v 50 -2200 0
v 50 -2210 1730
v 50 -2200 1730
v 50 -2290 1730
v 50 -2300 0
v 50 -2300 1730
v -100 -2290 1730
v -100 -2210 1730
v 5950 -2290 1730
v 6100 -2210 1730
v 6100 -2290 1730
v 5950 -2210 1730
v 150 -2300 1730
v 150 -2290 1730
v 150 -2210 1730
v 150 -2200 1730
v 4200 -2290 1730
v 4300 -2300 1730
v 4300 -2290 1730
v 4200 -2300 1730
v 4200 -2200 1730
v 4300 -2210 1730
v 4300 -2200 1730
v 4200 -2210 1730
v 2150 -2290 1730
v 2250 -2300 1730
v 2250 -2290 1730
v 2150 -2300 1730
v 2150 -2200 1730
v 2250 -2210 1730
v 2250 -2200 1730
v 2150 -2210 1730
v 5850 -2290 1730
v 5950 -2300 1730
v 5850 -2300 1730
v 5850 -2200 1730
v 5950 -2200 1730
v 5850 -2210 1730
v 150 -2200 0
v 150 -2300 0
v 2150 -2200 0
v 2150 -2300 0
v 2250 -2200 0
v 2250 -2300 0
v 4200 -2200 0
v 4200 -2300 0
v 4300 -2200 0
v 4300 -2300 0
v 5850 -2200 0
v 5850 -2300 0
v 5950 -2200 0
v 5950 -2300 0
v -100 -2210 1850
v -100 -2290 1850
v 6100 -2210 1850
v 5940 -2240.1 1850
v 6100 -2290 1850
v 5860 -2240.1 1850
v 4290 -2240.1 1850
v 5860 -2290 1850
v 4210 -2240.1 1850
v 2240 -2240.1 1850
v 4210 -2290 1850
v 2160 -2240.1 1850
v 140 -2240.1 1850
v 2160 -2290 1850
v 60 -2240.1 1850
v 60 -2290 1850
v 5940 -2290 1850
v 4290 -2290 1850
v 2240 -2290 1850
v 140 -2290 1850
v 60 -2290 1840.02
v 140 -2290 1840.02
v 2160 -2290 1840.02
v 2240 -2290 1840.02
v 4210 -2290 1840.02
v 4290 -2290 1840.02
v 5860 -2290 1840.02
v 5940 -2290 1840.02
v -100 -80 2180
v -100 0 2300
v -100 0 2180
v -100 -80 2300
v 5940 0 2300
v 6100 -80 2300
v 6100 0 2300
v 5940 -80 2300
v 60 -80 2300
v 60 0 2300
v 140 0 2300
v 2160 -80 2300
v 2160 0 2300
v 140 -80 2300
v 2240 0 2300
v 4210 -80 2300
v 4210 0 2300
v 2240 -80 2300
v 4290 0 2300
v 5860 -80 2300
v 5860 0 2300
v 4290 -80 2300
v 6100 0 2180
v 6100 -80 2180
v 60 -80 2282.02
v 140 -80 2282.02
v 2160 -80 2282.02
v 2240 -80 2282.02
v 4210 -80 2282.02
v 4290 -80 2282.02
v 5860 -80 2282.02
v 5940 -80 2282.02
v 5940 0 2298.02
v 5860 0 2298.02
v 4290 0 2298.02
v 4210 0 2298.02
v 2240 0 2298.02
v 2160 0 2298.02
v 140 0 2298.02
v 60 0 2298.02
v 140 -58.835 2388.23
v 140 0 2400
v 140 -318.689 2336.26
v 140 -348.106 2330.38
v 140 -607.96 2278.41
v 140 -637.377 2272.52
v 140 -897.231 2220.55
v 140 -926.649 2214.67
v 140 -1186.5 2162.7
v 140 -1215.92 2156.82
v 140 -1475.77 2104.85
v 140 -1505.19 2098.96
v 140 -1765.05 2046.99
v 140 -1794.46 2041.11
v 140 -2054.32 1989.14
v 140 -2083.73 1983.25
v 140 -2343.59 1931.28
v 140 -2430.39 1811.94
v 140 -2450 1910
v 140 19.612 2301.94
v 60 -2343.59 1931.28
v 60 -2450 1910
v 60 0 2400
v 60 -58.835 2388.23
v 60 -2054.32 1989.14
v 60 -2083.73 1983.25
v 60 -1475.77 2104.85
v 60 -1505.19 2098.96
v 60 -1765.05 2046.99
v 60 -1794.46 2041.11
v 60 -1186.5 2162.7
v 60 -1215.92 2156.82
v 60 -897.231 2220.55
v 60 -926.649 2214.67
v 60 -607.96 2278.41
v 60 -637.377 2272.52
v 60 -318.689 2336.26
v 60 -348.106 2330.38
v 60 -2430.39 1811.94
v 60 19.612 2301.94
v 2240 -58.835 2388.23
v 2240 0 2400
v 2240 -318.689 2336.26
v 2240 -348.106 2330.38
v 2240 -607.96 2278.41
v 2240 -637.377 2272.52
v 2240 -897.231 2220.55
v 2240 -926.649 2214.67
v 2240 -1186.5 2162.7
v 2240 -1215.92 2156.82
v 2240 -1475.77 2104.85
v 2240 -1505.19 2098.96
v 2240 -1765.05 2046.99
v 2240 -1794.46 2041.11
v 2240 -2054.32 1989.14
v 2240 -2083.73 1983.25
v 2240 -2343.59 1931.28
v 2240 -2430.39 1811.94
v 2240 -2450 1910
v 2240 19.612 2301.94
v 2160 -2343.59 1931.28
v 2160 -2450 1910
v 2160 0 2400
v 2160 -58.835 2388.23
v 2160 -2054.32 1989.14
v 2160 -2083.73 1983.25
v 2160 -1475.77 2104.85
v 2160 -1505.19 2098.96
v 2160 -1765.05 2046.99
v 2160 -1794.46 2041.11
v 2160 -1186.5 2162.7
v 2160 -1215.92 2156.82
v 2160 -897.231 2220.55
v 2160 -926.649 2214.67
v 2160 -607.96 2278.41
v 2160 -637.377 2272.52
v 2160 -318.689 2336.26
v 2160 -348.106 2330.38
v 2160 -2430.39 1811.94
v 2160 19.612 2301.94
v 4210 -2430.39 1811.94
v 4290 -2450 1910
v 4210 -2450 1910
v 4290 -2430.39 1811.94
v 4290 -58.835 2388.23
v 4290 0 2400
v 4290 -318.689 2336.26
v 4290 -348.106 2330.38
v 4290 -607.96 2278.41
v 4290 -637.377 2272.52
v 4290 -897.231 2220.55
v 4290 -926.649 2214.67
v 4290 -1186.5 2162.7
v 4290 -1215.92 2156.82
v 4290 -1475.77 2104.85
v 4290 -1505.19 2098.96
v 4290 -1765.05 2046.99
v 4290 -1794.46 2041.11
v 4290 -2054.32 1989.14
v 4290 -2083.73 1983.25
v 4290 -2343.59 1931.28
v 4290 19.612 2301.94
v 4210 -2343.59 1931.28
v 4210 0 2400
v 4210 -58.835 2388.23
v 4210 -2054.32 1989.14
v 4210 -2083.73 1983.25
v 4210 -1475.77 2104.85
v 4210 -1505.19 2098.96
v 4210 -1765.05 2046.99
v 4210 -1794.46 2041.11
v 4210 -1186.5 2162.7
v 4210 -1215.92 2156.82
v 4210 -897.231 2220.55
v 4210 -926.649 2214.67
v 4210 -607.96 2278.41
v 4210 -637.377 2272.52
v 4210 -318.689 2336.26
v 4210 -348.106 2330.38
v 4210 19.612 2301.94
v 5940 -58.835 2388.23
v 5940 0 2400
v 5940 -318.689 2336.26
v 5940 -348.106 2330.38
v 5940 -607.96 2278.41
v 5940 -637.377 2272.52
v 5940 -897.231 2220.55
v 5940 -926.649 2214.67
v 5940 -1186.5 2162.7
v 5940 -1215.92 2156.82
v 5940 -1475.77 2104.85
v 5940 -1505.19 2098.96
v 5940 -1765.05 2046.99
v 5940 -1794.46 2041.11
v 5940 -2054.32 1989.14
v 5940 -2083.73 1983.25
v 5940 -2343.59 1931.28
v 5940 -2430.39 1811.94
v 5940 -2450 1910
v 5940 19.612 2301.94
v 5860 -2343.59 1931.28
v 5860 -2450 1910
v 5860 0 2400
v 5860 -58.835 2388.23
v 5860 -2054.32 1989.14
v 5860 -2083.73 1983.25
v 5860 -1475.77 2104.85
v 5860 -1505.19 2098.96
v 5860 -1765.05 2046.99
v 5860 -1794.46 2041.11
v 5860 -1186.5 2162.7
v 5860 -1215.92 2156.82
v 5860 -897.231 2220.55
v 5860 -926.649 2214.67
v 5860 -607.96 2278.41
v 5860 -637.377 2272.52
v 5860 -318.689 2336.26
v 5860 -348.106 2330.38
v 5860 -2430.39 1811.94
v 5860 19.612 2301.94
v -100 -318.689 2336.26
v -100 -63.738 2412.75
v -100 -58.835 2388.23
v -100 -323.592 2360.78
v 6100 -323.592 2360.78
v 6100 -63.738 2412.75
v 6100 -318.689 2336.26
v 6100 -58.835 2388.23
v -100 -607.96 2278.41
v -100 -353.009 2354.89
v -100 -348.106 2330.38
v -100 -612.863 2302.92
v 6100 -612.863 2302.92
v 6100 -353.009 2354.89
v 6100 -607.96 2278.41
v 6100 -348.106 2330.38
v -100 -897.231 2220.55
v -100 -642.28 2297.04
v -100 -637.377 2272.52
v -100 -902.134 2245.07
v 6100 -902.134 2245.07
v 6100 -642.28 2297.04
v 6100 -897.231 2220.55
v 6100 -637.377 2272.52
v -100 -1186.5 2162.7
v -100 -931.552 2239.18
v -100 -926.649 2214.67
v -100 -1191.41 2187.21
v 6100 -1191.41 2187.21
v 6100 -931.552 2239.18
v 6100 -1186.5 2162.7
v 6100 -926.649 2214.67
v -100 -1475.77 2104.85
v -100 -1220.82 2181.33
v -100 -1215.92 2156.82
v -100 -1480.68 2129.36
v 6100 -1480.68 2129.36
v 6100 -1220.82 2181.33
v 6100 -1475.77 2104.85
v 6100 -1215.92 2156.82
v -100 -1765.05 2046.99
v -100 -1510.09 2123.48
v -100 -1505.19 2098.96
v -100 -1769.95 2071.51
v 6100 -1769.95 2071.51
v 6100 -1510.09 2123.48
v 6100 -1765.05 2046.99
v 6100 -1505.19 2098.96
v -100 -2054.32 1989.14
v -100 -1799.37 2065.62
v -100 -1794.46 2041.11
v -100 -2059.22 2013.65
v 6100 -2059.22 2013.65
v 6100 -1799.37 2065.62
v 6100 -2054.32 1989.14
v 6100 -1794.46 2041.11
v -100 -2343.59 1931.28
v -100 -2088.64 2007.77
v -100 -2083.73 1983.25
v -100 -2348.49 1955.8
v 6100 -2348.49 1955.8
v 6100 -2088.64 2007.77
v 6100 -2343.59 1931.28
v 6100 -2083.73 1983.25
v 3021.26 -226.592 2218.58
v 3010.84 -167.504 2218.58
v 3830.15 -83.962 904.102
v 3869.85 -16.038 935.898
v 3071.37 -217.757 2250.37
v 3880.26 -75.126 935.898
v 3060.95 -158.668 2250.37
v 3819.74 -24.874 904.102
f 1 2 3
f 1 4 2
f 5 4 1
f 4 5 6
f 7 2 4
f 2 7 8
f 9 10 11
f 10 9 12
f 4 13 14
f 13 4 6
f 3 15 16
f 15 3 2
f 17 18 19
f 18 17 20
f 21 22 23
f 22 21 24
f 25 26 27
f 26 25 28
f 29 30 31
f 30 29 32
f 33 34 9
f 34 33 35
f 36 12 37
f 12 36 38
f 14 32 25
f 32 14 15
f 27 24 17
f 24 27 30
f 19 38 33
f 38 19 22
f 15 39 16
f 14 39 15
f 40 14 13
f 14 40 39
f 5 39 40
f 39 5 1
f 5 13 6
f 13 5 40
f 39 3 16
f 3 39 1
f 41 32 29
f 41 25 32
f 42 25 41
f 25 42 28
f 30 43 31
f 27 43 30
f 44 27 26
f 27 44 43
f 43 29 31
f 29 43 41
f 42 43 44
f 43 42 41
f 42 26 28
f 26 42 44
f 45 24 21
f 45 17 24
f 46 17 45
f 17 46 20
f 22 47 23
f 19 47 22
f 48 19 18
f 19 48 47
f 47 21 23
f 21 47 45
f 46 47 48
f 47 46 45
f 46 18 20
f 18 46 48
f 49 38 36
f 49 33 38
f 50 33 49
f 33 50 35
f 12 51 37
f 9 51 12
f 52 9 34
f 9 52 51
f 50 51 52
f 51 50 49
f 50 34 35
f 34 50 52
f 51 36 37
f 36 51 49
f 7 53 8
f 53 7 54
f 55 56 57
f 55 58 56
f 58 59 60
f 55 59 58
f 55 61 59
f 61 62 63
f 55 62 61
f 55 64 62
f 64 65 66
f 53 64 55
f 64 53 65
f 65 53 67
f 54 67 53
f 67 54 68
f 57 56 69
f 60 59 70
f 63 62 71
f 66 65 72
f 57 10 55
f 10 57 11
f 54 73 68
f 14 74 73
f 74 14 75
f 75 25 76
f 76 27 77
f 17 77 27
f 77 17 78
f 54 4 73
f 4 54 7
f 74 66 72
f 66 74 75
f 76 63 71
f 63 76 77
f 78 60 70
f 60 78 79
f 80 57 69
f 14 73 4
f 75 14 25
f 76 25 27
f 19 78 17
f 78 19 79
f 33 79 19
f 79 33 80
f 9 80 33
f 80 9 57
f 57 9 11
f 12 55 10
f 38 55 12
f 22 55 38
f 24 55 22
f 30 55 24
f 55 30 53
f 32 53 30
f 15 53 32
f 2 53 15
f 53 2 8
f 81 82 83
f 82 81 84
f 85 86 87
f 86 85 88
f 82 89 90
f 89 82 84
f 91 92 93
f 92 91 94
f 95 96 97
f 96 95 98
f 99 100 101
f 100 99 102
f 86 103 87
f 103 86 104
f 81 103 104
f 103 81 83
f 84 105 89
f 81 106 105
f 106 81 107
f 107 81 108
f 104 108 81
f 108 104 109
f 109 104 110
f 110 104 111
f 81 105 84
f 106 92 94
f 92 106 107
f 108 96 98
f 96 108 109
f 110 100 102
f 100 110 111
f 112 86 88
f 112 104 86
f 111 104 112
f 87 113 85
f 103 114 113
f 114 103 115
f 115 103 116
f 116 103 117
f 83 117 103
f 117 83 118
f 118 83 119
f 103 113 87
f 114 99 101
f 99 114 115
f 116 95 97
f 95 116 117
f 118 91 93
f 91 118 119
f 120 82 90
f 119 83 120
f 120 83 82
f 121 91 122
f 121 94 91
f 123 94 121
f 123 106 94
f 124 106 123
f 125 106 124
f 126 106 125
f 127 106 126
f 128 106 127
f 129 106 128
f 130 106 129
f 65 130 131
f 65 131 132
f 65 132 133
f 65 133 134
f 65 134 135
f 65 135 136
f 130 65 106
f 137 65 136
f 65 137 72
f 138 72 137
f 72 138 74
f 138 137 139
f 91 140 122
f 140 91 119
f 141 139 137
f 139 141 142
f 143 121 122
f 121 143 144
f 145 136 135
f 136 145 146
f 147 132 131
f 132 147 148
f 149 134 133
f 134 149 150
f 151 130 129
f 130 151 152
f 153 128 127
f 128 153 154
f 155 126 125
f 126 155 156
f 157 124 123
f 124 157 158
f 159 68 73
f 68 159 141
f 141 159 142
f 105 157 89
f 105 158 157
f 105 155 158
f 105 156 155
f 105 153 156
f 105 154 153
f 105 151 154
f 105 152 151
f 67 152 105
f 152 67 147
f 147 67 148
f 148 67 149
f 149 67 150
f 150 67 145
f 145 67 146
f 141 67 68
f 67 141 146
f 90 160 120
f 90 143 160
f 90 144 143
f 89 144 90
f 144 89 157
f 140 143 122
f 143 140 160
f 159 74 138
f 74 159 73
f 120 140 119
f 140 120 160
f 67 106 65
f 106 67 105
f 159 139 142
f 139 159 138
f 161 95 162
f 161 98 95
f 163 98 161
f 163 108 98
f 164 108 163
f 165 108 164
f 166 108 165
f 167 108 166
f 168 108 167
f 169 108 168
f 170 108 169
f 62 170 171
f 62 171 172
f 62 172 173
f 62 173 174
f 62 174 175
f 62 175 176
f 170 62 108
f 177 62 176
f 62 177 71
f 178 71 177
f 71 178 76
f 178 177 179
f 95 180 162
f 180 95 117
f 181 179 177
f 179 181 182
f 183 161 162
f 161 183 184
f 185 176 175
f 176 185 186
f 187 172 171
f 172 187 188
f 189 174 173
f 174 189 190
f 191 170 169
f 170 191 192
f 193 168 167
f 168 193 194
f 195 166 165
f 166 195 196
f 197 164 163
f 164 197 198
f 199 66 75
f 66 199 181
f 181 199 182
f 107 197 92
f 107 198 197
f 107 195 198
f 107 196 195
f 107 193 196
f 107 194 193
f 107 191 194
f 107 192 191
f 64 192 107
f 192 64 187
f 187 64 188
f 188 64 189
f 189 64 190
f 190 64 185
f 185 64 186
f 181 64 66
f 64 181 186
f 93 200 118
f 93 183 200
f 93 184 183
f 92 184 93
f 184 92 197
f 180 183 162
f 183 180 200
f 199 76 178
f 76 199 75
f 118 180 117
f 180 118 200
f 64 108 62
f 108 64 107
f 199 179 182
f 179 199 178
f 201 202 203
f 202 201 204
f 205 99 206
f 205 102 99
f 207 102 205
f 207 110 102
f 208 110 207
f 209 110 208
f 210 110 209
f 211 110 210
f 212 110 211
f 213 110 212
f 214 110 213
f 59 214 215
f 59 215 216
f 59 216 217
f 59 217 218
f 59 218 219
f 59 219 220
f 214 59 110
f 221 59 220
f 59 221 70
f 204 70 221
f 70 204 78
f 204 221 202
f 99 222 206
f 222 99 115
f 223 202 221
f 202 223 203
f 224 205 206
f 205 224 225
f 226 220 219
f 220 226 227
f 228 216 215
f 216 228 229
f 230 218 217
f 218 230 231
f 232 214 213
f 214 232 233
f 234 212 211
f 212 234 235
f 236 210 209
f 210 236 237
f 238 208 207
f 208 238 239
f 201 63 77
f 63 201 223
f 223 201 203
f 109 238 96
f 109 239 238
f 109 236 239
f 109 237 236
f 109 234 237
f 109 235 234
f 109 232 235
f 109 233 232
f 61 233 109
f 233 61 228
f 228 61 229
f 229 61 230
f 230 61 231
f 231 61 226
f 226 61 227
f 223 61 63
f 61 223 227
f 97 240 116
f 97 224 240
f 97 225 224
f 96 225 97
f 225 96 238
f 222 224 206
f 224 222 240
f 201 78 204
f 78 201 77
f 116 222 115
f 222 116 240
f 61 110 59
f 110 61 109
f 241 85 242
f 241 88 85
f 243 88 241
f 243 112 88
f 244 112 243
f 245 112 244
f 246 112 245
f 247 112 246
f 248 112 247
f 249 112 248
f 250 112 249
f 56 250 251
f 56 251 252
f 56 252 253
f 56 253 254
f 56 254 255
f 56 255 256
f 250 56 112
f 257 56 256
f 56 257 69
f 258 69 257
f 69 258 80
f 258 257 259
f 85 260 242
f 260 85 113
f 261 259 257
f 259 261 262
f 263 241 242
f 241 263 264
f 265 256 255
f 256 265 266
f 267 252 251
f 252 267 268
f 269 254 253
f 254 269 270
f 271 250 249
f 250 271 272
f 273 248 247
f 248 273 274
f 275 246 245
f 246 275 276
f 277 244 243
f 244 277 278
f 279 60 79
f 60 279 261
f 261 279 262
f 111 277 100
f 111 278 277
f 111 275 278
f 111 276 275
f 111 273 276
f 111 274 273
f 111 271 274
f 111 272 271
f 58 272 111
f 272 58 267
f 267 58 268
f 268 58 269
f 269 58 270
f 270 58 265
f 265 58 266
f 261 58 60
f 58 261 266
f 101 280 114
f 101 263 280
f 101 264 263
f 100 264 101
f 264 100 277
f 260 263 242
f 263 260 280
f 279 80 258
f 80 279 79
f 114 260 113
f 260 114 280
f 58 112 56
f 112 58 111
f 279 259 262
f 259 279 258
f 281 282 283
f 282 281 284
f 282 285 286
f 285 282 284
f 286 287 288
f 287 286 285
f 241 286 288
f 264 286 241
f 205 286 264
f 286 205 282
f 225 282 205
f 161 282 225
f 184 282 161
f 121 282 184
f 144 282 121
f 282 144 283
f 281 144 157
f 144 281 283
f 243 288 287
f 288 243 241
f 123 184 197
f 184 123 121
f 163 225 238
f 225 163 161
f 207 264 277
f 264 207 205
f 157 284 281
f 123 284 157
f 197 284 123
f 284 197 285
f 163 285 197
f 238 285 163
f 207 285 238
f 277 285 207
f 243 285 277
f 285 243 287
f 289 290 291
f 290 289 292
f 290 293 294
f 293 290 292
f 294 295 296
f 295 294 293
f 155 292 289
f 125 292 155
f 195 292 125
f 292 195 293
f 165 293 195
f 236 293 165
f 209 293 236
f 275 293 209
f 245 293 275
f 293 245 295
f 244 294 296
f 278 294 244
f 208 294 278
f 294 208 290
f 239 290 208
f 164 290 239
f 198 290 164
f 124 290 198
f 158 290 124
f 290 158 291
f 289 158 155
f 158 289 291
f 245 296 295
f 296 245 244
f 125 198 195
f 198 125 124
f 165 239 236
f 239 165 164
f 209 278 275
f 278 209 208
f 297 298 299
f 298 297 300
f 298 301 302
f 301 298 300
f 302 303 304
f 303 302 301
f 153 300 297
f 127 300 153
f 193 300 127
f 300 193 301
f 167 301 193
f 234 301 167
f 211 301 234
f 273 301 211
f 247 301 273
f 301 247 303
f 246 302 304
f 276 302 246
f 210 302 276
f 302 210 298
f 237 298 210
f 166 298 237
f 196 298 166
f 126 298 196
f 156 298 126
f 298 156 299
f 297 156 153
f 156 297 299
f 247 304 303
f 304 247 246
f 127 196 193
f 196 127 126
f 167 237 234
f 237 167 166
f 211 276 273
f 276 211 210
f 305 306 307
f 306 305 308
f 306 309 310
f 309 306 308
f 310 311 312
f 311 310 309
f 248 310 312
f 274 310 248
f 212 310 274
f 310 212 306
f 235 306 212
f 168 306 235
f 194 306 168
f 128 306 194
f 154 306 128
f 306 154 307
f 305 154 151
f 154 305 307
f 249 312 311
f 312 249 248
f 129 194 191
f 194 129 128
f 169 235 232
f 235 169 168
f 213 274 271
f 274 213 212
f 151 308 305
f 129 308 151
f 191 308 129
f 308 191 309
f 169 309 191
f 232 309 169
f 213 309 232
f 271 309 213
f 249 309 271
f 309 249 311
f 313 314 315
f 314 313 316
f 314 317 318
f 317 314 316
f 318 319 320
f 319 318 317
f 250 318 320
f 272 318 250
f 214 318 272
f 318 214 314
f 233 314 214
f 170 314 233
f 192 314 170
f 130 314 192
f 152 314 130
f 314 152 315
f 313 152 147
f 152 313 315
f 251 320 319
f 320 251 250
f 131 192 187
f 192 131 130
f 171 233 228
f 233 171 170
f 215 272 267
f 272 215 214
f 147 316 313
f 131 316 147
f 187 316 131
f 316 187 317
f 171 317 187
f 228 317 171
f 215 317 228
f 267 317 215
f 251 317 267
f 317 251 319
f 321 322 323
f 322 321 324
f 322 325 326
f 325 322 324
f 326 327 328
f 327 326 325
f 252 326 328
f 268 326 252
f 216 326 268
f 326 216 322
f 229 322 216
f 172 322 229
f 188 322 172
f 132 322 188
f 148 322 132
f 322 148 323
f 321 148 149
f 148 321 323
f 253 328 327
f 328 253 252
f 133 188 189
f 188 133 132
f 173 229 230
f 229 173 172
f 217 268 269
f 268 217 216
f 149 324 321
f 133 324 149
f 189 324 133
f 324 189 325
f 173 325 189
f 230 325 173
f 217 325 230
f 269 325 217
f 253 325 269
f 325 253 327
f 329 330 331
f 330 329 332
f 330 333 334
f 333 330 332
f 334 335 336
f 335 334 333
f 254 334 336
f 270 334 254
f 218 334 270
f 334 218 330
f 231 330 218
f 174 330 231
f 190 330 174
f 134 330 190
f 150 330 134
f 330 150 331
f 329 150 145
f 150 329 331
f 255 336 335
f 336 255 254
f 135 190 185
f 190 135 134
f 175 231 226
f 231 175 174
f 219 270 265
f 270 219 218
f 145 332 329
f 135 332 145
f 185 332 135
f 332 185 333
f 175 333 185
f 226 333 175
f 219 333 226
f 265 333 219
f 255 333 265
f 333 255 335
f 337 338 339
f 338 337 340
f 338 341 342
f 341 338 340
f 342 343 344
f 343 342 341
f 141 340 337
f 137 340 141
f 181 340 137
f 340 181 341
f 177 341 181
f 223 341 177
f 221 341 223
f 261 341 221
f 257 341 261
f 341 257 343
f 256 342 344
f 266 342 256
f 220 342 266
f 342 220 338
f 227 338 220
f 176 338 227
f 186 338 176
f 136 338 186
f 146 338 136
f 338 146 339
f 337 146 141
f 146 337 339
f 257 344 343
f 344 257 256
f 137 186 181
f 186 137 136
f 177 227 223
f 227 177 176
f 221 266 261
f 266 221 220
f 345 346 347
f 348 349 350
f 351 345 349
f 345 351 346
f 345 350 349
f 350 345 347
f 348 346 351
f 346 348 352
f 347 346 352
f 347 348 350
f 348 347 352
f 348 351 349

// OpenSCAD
// file: tea_shop_pergola_parameters.scad
// =============================================================================
// Tea Shop — GROUP 3: PERGOLA PARAMETERS
// -----------------------------------------------------------------------------
// All units: mm (1000 mm = 1.0 m), real-life scale.
// Shared global coordinate system (identical to Groups 1 & 2):
//   +X -> left -> right  (0 = left outer wall face, BUILD_W = right outer wall)
//   +Y -> front -> back  (0 = front eave wall face, BUILD_D = back wall)
//   +Z -> up             (0 = ground / plinth top datum)
//   Porch canopy extends in negative Y (forward, from Y = 0 to Y ≈ -2450 mm).
// =============================================================================

// --- SHARED GLOBAL VARIABLES (from Groups 1 & 2 — identical values) ----------
WALL_T  = 250;   // wall panel thickness                      (0.25 m)
BUILD_W = 6000;  // building width along X                    (6.00 m)
BUILD_D = 4000;  // building depth along Y                    (4.00 m)
BACK_H  = 3200;  // wall height at BACK (tall lean-to side)   (3.20 m)
FRONT_H = 2400;  // wall height at FRONT eave (short side)    (2.40 m)

// Group 1 alias names
wall_thickness    = WALL_T;
building_width    = BUILD_W;
building_depth    = BUILD_D;
back_height       = BACK_H;
front_eave_height = FRONT_H;

// Group 1 front opening & plinth references:
sill_height       = 900;   // knee-wall sill datum where brace foot rests (0.90 m)
base_front_margin = 3000;  // total front porch slab depth               (3.00 m)

// Group 2 roof slope derivation (pergola slope follows this exact angle):
ROOF_RISE  = BACK_H - FRONT_H;  // 800 mm
ROOF_RUN   = BUILD_D;            // 4000 mm
ROOF_ANGLE = atan(ROOF_RISE / ROOF_RUN); // ~11.3099°


// =============================================================================
// GROUP 3 PARAMETERS — Pergola Structure & Dimensions
// =============================================================================

// --- Post Cross-Section & Layout ---------------------------------------------
// REFERENCE NOTE: Posts are square timber (~100x100 mm), confirmed from
// wireframe (countryside-tea-shop-3d-model-9cc7378ff7.webp).
POST_SIZE = 100;  // square timber post dimension (100 mm × 100 mm) (0.10 m)

// Y coordinate of the front posts line:
// Placed at Y = -2250 mm (~75% forward across the 3.0 m porch slab),
// leaving ~750 mm open patio in front of posts as shown in reference renders.
POST_Y    = -2250;

// Array of 4 post positions [X, Y]:
// Derived from front elevation proportions:
//   - Post 1 (X=100)  : near left edge of pergola / bench area
//   - Post 2 (X=2200) : intermediate post subdividing wide 3.4m service window span
//   - Post 3 (X=4250) : positioned at mid-pier directly supporting signboard
//   - Post 4 (X=5900) : near right corner of pergola
PERGOLA_POST_POSITIONS = [
    [100,  POST_Y],  // Post 1: Front-Left
    [2200, POST_Y],  // Post 2: Front-Mid-Left
    [4250, POST_Y],  // Post 3: Front-Mid-Right (under "TEA SHOP" sign)
    [5900, POST_Y]   // Post 4: Front-Right
];

// --- Beam Dimensions ---------------------------------------------------------
MAIN_BEAM_WIDTH  = 80;   // thickness of header & ledger beams along Y (0.08 m)
MAIN_BEAM_HEIGHT = 120;  // vertical depth of header & ledger beams    (0.12 m)

// --- Cross Beams / Rafters ---------------------------------------------------
CROSS_BEAM_WIDTH  = 80;   // rafter timber thickness along X            (0.08 m)
CROSS_BEAM_HEIGHT = 100;  // rafter timber depth normal to slope        (0.10 m)

// Rafter X positions aligning directly over the 4 posts:
CROSS_BEAM_X_POSITIONS = [100, 2200, 4250, 5900];

// Sloped length of rafter from front wall (Y=0) to 200 mm past the posts:
CROSS_BEAM_SLOPE_LEN = (abs(POST_Y) + 200) / cos(ROOF_ANGLE);

// --- Pergola Slope Datum & Post Height Derivation ----------------------------
// The pergola roof slopes DOWNWARDS from the front wall eave (Y=0, Z=FRONT_H)
// toward the front posts (Y=POST_Y).
// Under the slope, the rafter top is at: FRONT_H - abs(POST_Y) * tan(ROOF_ANGLE).
// Below the rafters is the header beam (MAIN_BEAM_HEIGHT).
// Post tops touch the underside of the header beam:
PERGOLA_EAVE_Z = FRONT_H;
POST_HEIGHT    = PERGOLA_EAVE_Z - abs(POST_Y) * tan(ROOF_ANGLE) - CROSS_BEAM_HEIGHT - MAIN_BEAM_HEIGHT;

// --- Diagonal Prop Brace -----------------------------------------------------
// Single prop strut visible in window wireframe (8ffafd36e4.webp), anchoring
// near the counter sill and rising diagonally to the overhead rafter.
BRACE_WIDTH     = 60;   // diagonal brace width                       (0.06 m)
BRACE_THICKNESS = 60;   // diagonal brace thickness                   (0.06 m)
BRACE_LENGTH    = 1550; // length along diagonal strut axis           (1.55 m)
BRACE_ANGLE     = 32;   // angle of brace from vertical in degrees

// --- Slatted Roof Canopy (Planks) --------------------------------------------
// 8 flat timber planks running along X (spanning full width), arrayed along
// the slope from the front wall eave to cantilever slightly past the front posts.
SLAT_WIDTH        = 265;  // width of each individual wooden plank      (0.265 m)
SLAT_THICKNESS    = 25;   // thickness of timber plank                  (0.025 m)
SLAT_GAP          = 30;   // air gap between consecutive slats          (0.030 m)
SLAT_COUNT        = 8;    // count matching 8 planks visible in wireframe
SLAT_LENGTH       = 6200; // full span along X (covers 6000 mm + 100 mm side margins)
SLAT_START_OFFSET = 60;   // distance along slope from wall face to first slat (mm)
// file: tea_shop_pergola_modules.scad
// =============================================================================
// Tea Shop — GROUP 3: PERGOLA MODULE LIBRARY
// -----------------------------------------------------------------------------
// Defines all pergola part modules. Creates NO geometry on its own when
// included, allowing individual part_*.scad export files and the assembly
// preview file to include it cleanly.
//
// SHARED GLOBAL COORDINATE SYSTEM (identical to Groups 1 & 2):
//   +X -> left -> right  (0 = left outer wall face, BUILD_W = right outer wall)
//   +Y -> front -> back  (0 = front eave wall face, BUILD_D = back wall)
//   +Z -> up             (0 = ground / plinth top datum)
//   Porch canopy extends in negative Y (forward, from Y = 0 to Y ≈ -2450 mm).
//
// SLOPE CORRECTION:
//   Because the porch is in the negative Y direction (-Y), applying a POSITIVE
//   rotation `rotate([ROOF_ANGLE, 0, 0])` causes the coordinate `[0, -y, 0]`
//   to rotate DOWNWARD into negative Z: `Z = -y * sin(ROOF_ANGLE)`.
//   This ensures the pergola rafters and slats slope DOWNWARDS toward the front
//   posts, resting flush and continuous with the building's roof line.
//
// TODO: The hanging "TEA SHOP" sign and its mounting bracket (a later group)
//       will attach to the main header beam / roof slats near Post 3 (X=4250).
// TODO: The customer bench, stools, and water dispenser stand (later groups)
//       sit on the base slab beneath this pergola structure at Z=0.
// =============================================================================

include <tea_shop_pergola_parameters.scad>;


// =============================================================================
// MODULE 1: pergola_post()
// -----------------------------------------------------------------------------
// A single vertical square timber post modeled at the local origin:
//   Centred in X and Y ([-POST_SIZE/2 .. +POST_SIZE/2]), rising from Z=0
//   to Z=POST_HEIGHT (touching the underside of the front header beam).
// Instanced 4 times via translate() in assemble() — single reusable module.
// =============================================================================
module pergola_post() {
    translate([-POST_SIZE/2, -POST_SIZE/2, 0])
        cube([POST_SIZE, POST_SIZE, POST_HEIGHT]);
}


// =============================================================================
// MODULE 2: pergola_main_beam()
// -----------------------------------------------------------------------------
// The horizontal primary beam system:
//   1. Front header beam: spans across all 4 post tops at Y = POST_Y,
//      distributing load and directly supporting the sloped rafters.
//   2. Rear ledger beam: runs along the front wall eave (Y=0), supporting
//      the upper ends of the rafters.
// =============================================================================
module pergola_main_beam() {
    // 1. Front header beam resting directly on top of the front posts
    translate([-100, POST_Y - MAIN_BEAM_WIDTH/2, POST_HEIGHT])
        cube([BUILD_W + 200, MAIN_BEAM_WIDTH, MAIN_BEAM_HEIGHT]);

    // 2. Rear wall ledger beam anchored to the front wall below the eave
    translate([-100, -MAIN_BEAM_WIDTH, PERGOLA_EAVE_Z - MAIN_BEAM_HEIGHT - CROSS_BEAM_HEIGHT])
        cube([BUILD_W + 200, MAIN_BEAM_WIDTH, MAIN_BEAM_HEIGHT]);
}


// =============================================================================
// MODULE 3: pergola_diagonal_brace()
// -----------------------------------------------------------------------------
// A single diagonal timber brace modeled at local origin. Oriented at BRACE_ANGLE
// from vertical. Instanced at the service counter sill to support the overhead
// rafter beam, exactly as shown in the reference wireframe pass.
// =============================================================================
module pergola_diagonal_brace() {
    rotate([0, -BRACE_ANGLE, 10])
        translate([-BRACE_WIDTH/2, -BRACE_THICKNESS/2, 0])
            cube([BRACE_WIDTH, BRACE_THICKNESS, BRACE_LENGTH]);
}


// =============================================================================
// MODULE 4: pergola_cross_beam()
// -----------------------------------------------------------------------------
// A single sloped rafter running perpendicular to the building (in Y direction).
// Modeled at local origin (X=0) and sloped DOWNWARD at ROOF_ANGLE:
//   - Starts at the front wall ledger beam (Y=0)
//   - Slopes down to bear across the front header beam at POST_Y
//   - Projects 200 mm past the posts as an exposed rafter tail
// =============================================================================
module pergola_cross_beam() {
    translate([0, 0, PERGOLA_EAVE_Z])
        rotate([ROOF_ANGLE, 0, 0])
            translate([-CROSS_BEAM_WIDTH/2, -CROSS_BEAM_SLOPE_LEN, -CROSS_BEAM_HEIGHT])
                cube([CROSS_BEAM_WIDTH, CROSS_BEAM_SLOPE_LEN, CROSS_BEAM_HEIGHT]);
}


// =============================================================================
// MODULE 5: pergola_slat()
// -----------------------------------------------------------------------------
// A single flat timber canopy plank running along X (spanning the full width).
// Instanced and arrayed in assemble() via a for loop down the sloped plane,
// resting directly on top of the rafters.
// =============================================================================
module pergola_slat() {
    translate([-100, -SLAT_WIDTH, 0])
        cube([SLAT_LENGTH, SLAT_WIDTH, SLAT_THICKNESS]);
}


// =============================================================================
// ASSEMBLE MODULE — Visual verification preview (not for export)
// -----------------------------------------------------------------------------
// Press F5 in OpenSCAD to view all Group 3 pergola components together in color.
// For individual STL export, use the dedicated part_*.scad files.
// =============================================================================
module assemble() {
    // 1. Posts (4 instances positioned in shared global coordinates)
    color("SaddleBrown") {
        for (pos = PERGOLA_POST_POSITIONS) {
            translate([pos[0], pos[1], 0])
                pergola_post();
        }
    }

    // 2. Main horizontal beams (front header + rear ledger)
    color("Peru")
        pergola_main_beam();

    // 3. Cross beams / rafters (4 instances positioned over each post line)
    color("BurlyWood") {
        for (x = CROSS_BEAM_X_POSITIONS) {
            translate([x, 0, 0])
                pergola_cross_beam();
        }
    }

    // 4. Slatted canopy roof (8 flat planks arrayed along the slope)
    color("DarkGoldenrod") {
        for (i = [0 : SLAT_COUNT - 1]) {
            dist = SLAT_START_OFFSET + i * (SLAT_WIDTH + SLAT_GAP);
            translate([0, 0, PERGOLA_EAVE_Z])
                rotate([ROOF_ANGLE, 0, 0])
                    translate([0, -dist, 0])
                        pergola_slat();
        }
    }

    // 5. Diagonal prop brace (anchored at the service window counter sill)
    color("DarkSlateGray") {
        translate([3850, -50, sill_height + 20])
            pergola_diagonal_brace();
    }
}

// Default preview invocation:
assemble();
// main file
// =============================================================================
// tea_shop_pergola_assemble.scad — GROUP 3 PERGOLA: ASSEMBLED PREVIEW
// -----------------------------------------------------------------------------
// Visual verification ONLY — not for export.
// Press F5 in OpenSCAD to preview all pergola parts in color.
// Press F6 and use the individual part_*.scad files to export each piece as STL.
// =============================================================================

include <tea_shop_pergola_modules.scad>;

assemble();
